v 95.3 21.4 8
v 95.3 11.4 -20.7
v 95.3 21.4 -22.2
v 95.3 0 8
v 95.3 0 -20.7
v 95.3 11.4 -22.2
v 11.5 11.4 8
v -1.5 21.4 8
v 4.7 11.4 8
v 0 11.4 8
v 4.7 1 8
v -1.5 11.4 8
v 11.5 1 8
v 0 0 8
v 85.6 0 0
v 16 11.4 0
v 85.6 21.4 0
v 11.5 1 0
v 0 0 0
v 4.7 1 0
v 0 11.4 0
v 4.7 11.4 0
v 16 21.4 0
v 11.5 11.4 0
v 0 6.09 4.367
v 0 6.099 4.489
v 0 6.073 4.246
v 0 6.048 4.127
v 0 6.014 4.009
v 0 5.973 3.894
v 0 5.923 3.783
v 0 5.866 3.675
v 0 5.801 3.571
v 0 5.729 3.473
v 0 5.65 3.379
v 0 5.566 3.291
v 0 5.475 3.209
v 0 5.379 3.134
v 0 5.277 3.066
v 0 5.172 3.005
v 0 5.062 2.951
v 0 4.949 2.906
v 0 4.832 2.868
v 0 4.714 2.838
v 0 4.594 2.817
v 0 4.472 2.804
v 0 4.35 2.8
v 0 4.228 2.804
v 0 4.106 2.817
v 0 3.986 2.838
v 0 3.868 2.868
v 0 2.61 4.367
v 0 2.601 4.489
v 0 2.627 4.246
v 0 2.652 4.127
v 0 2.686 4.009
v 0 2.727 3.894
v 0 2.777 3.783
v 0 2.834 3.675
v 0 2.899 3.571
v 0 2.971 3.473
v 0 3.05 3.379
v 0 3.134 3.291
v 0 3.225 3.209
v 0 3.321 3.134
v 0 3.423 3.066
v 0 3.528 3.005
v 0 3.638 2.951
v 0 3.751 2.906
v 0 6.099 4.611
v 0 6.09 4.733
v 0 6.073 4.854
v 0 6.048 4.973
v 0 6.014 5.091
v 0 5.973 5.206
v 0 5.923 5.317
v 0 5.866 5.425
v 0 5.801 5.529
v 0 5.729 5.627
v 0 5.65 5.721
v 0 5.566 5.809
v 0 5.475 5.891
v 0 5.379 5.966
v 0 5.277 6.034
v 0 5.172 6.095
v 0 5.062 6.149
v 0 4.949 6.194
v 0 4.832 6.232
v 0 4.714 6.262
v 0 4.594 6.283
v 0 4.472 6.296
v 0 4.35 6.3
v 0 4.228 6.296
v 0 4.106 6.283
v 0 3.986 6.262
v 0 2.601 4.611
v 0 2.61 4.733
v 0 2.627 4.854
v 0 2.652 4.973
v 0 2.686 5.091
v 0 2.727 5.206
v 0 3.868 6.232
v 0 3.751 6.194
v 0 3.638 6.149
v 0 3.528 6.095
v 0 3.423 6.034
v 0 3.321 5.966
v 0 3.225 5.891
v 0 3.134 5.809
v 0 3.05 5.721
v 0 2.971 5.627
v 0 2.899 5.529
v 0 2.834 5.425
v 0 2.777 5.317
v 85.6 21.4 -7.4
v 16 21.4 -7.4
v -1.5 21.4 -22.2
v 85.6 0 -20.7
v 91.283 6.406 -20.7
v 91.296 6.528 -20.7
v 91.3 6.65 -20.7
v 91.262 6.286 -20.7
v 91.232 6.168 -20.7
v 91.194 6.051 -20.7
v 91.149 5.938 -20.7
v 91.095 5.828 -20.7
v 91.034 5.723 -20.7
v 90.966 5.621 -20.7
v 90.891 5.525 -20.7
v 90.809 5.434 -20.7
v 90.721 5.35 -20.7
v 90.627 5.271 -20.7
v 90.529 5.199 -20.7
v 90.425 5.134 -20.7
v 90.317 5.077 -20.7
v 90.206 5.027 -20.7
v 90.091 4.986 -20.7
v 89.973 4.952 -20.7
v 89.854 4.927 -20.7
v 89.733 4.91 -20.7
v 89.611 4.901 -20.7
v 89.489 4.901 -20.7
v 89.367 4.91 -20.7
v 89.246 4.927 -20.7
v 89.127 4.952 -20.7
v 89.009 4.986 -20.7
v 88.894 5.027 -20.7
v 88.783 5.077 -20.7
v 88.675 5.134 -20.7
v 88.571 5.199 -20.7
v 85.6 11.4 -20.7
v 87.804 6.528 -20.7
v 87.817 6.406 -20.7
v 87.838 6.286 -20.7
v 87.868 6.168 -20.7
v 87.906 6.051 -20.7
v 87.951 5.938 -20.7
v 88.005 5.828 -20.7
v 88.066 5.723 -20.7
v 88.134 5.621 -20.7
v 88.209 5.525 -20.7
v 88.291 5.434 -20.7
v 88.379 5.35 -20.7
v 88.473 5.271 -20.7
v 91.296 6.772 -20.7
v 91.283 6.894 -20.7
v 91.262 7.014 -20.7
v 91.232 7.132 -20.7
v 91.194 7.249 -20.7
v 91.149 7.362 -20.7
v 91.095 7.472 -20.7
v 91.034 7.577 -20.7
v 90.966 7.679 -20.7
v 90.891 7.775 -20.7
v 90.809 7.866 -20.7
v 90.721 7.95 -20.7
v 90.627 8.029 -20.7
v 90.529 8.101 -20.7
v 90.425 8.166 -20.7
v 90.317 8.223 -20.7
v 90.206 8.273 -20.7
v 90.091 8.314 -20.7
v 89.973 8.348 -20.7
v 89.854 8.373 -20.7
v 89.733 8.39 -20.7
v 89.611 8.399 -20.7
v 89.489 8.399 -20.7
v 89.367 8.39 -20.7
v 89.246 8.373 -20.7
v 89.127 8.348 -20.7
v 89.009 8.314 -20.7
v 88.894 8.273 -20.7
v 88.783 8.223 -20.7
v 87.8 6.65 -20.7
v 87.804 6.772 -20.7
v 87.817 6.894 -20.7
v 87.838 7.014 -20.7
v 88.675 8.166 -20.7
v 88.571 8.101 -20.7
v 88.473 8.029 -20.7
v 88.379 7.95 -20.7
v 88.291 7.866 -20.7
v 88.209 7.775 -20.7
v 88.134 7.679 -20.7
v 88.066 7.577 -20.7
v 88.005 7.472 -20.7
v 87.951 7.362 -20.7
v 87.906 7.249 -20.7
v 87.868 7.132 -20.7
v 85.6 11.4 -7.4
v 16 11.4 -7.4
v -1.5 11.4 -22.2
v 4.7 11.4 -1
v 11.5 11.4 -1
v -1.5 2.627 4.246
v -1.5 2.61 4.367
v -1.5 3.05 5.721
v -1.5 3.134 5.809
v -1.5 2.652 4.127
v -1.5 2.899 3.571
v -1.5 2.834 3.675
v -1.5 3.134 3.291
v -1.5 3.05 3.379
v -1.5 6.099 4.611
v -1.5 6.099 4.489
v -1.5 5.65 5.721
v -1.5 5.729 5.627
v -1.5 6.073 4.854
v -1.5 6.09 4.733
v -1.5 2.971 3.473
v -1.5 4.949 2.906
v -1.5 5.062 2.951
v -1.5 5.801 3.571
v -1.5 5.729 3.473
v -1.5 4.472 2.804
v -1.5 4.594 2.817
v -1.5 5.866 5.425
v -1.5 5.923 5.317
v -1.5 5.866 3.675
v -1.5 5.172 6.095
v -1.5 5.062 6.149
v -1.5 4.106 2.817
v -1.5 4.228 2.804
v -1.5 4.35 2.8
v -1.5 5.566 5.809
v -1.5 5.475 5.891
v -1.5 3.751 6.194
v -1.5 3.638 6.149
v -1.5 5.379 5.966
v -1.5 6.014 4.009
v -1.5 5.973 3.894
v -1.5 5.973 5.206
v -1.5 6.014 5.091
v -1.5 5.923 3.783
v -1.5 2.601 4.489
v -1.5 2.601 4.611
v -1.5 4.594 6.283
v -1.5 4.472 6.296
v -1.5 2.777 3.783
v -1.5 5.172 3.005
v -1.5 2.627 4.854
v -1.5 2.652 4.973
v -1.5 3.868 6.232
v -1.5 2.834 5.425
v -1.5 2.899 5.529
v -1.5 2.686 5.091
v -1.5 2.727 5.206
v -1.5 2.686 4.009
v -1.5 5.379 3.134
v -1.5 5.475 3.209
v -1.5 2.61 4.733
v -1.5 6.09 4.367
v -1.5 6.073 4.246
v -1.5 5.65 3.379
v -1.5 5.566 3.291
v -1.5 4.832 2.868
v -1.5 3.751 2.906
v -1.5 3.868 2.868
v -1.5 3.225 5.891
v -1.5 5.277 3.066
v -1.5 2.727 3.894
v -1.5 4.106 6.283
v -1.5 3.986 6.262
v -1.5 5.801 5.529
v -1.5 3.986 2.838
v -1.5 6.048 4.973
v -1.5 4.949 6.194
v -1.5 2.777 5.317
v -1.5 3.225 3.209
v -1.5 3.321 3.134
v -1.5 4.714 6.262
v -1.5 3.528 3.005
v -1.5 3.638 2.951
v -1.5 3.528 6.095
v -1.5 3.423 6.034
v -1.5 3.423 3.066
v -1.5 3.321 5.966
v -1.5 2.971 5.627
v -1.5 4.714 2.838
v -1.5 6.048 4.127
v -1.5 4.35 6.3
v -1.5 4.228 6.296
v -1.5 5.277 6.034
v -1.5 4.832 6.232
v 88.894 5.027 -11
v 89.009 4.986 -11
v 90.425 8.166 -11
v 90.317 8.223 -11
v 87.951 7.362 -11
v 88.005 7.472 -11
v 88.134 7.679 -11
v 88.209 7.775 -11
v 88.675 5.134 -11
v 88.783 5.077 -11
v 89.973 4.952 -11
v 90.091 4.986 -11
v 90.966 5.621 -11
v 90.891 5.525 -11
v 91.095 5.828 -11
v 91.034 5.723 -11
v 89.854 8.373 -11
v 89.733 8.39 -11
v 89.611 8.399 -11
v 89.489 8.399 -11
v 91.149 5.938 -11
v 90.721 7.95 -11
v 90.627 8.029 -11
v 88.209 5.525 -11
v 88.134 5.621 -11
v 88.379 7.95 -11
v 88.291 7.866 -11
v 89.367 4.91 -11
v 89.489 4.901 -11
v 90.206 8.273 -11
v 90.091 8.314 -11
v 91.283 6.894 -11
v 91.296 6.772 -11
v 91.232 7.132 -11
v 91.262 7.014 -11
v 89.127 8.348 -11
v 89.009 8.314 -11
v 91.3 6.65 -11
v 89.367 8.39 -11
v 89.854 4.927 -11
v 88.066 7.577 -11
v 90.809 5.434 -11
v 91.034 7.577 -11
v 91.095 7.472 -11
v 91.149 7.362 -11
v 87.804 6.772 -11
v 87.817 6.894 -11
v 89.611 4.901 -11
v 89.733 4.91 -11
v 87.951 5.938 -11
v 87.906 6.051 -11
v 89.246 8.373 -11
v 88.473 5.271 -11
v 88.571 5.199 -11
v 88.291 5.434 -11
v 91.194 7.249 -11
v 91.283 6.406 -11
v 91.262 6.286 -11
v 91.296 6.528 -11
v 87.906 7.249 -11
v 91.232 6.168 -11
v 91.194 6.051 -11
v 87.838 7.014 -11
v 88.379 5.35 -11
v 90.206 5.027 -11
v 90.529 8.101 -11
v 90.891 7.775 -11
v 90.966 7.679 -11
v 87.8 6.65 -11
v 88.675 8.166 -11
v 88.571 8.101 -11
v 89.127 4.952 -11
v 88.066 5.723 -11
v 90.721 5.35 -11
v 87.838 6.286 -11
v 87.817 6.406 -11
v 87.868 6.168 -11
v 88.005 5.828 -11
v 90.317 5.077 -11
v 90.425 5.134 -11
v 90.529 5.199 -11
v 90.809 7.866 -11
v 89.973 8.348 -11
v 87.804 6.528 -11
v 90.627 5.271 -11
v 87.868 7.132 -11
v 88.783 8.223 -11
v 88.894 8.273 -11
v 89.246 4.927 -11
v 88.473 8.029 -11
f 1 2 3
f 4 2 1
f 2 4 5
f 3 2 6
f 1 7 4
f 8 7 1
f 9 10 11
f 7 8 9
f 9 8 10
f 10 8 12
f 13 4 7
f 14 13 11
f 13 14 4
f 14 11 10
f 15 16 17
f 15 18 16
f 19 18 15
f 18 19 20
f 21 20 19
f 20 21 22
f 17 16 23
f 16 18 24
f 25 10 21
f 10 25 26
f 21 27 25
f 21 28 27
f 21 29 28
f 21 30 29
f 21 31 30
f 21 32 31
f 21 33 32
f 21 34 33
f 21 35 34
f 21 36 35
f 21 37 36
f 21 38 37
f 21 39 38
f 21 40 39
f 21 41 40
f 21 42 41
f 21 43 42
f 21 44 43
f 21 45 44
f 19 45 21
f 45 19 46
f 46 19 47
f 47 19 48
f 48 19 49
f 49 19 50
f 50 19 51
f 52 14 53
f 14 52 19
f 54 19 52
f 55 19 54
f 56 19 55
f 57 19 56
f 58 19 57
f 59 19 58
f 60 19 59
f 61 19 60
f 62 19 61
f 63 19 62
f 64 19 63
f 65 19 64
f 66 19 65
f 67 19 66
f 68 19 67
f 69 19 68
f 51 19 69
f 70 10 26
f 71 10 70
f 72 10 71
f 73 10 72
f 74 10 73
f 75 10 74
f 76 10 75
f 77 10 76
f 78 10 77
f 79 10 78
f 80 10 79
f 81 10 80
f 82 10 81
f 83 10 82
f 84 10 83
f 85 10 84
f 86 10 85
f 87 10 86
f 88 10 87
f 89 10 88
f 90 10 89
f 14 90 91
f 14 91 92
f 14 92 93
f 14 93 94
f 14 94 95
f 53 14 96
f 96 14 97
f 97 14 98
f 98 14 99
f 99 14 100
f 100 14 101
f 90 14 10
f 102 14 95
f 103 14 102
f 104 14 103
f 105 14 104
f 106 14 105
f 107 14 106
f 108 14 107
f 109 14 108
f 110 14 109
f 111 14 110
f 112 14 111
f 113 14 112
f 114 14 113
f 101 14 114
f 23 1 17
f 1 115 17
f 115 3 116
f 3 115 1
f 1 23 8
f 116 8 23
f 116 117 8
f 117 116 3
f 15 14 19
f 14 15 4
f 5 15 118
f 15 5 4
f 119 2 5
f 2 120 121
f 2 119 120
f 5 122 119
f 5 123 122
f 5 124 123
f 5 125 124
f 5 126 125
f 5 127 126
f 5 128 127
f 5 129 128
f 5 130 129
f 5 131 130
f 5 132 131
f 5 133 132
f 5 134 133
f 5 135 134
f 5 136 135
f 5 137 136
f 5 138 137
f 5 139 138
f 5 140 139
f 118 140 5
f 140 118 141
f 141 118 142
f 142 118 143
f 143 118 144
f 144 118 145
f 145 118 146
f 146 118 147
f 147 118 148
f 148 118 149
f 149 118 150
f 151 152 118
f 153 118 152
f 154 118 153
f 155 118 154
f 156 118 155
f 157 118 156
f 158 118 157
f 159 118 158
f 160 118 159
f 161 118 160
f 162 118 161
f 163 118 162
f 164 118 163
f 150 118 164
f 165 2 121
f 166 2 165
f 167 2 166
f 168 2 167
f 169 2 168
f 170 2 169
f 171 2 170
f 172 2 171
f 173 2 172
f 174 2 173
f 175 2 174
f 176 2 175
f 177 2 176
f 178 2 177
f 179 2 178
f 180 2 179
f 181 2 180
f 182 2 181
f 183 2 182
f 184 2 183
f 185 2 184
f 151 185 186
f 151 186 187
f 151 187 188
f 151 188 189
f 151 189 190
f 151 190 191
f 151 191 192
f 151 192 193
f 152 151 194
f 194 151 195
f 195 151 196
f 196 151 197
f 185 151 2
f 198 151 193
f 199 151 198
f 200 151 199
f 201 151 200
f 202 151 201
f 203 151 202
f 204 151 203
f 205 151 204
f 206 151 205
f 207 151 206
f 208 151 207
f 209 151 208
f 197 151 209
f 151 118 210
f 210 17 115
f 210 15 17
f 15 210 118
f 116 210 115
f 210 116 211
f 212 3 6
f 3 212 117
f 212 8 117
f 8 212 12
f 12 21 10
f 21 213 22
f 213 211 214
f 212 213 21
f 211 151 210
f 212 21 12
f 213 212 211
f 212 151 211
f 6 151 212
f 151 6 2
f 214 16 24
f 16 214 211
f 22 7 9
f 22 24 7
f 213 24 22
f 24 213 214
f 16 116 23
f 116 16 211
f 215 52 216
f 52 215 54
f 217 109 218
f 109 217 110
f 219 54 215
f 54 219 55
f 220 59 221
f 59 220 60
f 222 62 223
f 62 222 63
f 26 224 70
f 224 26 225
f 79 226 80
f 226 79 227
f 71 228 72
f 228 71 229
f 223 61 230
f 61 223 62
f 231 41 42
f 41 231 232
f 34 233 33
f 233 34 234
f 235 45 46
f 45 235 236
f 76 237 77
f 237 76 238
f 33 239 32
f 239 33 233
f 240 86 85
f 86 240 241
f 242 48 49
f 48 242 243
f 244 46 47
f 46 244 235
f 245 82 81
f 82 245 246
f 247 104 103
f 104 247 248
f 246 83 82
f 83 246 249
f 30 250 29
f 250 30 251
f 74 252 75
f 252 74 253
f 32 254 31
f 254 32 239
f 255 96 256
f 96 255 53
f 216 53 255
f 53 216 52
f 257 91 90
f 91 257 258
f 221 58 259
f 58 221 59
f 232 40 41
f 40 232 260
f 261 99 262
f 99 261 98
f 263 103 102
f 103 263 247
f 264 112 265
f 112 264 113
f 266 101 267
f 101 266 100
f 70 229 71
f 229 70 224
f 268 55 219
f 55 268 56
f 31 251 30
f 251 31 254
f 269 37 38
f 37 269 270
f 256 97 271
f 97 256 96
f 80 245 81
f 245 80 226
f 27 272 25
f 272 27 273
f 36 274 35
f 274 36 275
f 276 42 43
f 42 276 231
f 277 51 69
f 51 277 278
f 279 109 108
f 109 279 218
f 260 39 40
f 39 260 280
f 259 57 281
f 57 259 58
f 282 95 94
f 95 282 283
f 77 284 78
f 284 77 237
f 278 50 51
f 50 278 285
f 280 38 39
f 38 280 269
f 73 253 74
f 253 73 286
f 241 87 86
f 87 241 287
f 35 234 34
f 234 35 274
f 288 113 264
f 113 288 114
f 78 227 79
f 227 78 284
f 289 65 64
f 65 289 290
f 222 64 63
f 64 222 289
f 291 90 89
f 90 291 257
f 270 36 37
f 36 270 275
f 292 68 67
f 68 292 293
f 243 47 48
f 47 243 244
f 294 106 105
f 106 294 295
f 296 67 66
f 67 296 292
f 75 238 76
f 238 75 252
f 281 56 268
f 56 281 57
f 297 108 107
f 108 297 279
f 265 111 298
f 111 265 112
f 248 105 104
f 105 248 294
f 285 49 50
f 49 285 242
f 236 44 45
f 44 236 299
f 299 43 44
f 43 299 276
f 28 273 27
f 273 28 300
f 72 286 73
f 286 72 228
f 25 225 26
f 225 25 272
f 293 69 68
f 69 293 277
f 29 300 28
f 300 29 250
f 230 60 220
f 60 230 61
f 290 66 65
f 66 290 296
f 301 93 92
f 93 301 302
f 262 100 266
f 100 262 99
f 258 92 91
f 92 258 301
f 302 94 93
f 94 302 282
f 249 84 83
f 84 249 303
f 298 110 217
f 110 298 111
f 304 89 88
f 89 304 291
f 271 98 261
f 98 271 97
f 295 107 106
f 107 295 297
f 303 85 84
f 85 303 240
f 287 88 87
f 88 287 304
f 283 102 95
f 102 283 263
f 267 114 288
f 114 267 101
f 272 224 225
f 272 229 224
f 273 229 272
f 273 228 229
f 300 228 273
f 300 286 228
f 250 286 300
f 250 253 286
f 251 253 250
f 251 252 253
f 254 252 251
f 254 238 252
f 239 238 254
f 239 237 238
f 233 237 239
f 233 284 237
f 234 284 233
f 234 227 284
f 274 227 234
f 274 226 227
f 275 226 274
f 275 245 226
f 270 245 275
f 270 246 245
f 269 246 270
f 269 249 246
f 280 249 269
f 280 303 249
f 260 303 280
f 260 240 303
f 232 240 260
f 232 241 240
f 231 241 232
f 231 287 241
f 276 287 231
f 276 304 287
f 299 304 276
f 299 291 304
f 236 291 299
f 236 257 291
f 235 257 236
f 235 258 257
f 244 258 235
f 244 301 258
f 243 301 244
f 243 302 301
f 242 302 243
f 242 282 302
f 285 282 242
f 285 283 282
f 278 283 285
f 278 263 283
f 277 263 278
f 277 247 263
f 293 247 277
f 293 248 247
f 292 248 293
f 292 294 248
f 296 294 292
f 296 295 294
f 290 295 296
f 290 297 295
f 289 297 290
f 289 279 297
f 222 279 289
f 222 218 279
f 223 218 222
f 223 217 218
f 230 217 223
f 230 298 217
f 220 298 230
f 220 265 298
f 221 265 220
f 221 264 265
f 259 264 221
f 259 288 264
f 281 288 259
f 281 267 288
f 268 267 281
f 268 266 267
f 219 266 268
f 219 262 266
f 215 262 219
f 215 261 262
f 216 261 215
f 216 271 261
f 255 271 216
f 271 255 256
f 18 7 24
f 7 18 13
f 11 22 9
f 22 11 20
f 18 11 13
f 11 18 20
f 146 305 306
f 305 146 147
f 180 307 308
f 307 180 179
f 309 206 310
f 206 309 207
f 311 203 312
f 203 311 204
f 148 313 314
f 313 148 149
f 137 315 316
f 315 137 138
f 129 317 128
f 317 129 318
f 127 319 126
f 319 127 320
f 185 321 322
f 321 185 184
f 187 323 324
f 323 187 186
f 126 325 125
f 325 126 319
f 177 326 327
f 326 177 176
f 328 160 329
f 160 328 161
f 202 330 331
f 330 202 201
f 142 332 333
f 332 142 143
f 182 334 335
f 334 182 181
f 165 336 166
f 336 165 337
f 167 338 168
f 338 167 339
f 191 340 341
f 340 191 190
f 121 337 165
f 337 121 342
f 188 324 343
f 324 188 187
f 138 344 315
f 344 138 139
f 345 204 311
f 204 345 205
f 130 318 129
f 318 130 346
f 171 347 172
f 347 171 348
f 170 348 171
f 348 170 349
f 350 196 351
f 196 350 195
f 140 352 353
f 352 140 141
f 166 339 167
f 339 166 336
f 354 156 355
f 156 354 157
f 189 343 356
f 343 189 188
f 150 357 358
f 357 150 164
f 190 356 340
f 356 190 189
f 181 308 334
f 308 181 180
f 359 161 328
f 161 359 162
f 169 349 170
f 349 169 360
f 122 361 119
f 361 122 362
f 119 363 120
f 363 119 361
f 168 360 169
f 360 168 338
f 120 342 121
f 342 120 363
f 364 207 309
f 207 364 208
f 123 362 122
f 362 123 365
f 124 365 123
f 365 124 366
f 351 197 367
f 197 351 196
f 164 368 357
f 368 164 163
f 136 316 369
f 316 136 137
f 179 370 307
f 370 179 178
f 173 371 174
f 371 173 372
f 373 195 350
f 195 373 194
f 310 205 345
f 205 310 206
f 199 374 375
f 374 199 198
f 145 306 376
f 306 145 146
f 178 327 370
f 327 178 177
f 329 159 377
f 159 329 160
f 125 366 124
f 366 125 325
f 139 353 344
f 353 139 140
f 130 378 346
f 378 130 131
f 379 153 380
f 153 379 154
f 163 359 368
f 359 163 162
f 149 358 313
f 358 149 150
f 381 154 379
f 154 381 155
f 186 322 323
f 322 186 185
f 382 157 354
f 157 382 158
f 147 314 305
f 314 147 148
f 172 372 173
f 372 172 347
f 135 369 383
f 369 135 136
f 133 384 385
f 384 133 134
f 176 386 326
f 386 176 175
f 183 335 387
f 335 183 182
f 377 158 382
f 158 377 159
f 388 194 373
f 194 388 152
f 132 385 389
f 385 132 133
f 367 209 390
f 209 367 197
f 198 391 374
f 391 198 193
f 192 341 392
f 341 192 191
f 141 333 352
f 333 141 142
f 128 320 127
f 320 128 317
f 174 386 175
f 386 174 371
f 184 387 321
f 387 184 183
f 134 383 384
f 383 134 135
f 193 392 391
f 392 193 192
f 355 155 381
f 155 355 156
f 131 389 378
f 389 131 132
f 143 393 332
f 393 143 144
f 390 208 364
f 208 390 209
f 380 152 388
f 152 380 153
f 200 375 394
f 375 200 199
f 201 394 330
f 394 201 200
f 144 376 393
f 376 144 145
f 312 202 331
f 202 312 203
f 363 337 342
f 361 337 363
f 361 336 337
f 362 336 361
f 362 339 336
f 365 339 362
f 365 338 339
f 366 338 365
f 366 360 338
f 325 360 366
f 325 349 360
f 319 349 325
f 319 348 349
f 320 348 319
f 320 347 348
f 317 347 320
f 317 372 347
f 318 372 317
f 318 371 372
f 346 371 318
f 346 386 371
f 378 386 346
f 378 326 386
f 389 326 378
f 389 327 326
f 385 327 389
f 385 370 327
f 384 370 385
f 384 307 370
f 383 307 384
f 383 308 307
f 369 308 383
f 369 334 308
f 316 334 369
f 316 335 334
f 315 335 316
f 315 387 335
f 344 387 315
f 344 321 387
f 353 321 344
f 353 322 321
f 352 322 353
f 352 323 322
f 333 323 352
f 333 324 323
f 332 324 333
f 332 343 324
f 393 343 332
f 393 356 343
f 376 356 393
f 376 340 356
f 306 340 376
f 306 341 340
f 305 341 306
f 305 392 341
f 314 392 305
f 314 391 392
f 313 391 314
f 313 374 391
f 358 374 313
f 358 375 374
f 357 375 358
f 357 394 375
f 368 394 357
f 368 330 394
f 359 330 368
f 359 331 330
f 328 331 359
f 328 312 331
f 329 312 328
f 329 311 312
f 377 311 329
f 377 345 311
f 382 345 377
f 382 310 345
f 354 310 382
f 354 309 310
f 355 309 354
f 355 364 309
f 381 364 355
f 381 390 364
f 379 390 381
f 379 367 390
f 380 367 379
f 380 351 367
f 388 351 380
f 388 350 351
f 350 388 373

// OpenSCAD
$fn=90;

difference(){
	union(){
		cube([95.3, 21.4, 8]);
		translate([95.3-9.7, 0, -28.7+8])
			cube([9.7, 21.4, 28.7]);
		translate([-1.5, 21.4-10, -28.7+8-1.5])
			cube([95.3+1.5, 10, 13.3+1.5]);
		translate([-1.5, 21.4-10, -28.7+8])
			cube([16+1.5, 10, 28.7]);
		translate([-1.5, 21.4-10-5.3-3.5/2, 8-1.7-3.5/2])
			rotate([0, 90, 0])
				cylinder(h=2.5, d=3.5);
	}
	#translate([4.7, 1, -1])
		cube([6.8, 21.4-10-1, 10]);
	#translate([95.3-4-3.5/2, 11.4-3-3.5/2, -21])
		cylinder(h=10, d=3.5);
}
